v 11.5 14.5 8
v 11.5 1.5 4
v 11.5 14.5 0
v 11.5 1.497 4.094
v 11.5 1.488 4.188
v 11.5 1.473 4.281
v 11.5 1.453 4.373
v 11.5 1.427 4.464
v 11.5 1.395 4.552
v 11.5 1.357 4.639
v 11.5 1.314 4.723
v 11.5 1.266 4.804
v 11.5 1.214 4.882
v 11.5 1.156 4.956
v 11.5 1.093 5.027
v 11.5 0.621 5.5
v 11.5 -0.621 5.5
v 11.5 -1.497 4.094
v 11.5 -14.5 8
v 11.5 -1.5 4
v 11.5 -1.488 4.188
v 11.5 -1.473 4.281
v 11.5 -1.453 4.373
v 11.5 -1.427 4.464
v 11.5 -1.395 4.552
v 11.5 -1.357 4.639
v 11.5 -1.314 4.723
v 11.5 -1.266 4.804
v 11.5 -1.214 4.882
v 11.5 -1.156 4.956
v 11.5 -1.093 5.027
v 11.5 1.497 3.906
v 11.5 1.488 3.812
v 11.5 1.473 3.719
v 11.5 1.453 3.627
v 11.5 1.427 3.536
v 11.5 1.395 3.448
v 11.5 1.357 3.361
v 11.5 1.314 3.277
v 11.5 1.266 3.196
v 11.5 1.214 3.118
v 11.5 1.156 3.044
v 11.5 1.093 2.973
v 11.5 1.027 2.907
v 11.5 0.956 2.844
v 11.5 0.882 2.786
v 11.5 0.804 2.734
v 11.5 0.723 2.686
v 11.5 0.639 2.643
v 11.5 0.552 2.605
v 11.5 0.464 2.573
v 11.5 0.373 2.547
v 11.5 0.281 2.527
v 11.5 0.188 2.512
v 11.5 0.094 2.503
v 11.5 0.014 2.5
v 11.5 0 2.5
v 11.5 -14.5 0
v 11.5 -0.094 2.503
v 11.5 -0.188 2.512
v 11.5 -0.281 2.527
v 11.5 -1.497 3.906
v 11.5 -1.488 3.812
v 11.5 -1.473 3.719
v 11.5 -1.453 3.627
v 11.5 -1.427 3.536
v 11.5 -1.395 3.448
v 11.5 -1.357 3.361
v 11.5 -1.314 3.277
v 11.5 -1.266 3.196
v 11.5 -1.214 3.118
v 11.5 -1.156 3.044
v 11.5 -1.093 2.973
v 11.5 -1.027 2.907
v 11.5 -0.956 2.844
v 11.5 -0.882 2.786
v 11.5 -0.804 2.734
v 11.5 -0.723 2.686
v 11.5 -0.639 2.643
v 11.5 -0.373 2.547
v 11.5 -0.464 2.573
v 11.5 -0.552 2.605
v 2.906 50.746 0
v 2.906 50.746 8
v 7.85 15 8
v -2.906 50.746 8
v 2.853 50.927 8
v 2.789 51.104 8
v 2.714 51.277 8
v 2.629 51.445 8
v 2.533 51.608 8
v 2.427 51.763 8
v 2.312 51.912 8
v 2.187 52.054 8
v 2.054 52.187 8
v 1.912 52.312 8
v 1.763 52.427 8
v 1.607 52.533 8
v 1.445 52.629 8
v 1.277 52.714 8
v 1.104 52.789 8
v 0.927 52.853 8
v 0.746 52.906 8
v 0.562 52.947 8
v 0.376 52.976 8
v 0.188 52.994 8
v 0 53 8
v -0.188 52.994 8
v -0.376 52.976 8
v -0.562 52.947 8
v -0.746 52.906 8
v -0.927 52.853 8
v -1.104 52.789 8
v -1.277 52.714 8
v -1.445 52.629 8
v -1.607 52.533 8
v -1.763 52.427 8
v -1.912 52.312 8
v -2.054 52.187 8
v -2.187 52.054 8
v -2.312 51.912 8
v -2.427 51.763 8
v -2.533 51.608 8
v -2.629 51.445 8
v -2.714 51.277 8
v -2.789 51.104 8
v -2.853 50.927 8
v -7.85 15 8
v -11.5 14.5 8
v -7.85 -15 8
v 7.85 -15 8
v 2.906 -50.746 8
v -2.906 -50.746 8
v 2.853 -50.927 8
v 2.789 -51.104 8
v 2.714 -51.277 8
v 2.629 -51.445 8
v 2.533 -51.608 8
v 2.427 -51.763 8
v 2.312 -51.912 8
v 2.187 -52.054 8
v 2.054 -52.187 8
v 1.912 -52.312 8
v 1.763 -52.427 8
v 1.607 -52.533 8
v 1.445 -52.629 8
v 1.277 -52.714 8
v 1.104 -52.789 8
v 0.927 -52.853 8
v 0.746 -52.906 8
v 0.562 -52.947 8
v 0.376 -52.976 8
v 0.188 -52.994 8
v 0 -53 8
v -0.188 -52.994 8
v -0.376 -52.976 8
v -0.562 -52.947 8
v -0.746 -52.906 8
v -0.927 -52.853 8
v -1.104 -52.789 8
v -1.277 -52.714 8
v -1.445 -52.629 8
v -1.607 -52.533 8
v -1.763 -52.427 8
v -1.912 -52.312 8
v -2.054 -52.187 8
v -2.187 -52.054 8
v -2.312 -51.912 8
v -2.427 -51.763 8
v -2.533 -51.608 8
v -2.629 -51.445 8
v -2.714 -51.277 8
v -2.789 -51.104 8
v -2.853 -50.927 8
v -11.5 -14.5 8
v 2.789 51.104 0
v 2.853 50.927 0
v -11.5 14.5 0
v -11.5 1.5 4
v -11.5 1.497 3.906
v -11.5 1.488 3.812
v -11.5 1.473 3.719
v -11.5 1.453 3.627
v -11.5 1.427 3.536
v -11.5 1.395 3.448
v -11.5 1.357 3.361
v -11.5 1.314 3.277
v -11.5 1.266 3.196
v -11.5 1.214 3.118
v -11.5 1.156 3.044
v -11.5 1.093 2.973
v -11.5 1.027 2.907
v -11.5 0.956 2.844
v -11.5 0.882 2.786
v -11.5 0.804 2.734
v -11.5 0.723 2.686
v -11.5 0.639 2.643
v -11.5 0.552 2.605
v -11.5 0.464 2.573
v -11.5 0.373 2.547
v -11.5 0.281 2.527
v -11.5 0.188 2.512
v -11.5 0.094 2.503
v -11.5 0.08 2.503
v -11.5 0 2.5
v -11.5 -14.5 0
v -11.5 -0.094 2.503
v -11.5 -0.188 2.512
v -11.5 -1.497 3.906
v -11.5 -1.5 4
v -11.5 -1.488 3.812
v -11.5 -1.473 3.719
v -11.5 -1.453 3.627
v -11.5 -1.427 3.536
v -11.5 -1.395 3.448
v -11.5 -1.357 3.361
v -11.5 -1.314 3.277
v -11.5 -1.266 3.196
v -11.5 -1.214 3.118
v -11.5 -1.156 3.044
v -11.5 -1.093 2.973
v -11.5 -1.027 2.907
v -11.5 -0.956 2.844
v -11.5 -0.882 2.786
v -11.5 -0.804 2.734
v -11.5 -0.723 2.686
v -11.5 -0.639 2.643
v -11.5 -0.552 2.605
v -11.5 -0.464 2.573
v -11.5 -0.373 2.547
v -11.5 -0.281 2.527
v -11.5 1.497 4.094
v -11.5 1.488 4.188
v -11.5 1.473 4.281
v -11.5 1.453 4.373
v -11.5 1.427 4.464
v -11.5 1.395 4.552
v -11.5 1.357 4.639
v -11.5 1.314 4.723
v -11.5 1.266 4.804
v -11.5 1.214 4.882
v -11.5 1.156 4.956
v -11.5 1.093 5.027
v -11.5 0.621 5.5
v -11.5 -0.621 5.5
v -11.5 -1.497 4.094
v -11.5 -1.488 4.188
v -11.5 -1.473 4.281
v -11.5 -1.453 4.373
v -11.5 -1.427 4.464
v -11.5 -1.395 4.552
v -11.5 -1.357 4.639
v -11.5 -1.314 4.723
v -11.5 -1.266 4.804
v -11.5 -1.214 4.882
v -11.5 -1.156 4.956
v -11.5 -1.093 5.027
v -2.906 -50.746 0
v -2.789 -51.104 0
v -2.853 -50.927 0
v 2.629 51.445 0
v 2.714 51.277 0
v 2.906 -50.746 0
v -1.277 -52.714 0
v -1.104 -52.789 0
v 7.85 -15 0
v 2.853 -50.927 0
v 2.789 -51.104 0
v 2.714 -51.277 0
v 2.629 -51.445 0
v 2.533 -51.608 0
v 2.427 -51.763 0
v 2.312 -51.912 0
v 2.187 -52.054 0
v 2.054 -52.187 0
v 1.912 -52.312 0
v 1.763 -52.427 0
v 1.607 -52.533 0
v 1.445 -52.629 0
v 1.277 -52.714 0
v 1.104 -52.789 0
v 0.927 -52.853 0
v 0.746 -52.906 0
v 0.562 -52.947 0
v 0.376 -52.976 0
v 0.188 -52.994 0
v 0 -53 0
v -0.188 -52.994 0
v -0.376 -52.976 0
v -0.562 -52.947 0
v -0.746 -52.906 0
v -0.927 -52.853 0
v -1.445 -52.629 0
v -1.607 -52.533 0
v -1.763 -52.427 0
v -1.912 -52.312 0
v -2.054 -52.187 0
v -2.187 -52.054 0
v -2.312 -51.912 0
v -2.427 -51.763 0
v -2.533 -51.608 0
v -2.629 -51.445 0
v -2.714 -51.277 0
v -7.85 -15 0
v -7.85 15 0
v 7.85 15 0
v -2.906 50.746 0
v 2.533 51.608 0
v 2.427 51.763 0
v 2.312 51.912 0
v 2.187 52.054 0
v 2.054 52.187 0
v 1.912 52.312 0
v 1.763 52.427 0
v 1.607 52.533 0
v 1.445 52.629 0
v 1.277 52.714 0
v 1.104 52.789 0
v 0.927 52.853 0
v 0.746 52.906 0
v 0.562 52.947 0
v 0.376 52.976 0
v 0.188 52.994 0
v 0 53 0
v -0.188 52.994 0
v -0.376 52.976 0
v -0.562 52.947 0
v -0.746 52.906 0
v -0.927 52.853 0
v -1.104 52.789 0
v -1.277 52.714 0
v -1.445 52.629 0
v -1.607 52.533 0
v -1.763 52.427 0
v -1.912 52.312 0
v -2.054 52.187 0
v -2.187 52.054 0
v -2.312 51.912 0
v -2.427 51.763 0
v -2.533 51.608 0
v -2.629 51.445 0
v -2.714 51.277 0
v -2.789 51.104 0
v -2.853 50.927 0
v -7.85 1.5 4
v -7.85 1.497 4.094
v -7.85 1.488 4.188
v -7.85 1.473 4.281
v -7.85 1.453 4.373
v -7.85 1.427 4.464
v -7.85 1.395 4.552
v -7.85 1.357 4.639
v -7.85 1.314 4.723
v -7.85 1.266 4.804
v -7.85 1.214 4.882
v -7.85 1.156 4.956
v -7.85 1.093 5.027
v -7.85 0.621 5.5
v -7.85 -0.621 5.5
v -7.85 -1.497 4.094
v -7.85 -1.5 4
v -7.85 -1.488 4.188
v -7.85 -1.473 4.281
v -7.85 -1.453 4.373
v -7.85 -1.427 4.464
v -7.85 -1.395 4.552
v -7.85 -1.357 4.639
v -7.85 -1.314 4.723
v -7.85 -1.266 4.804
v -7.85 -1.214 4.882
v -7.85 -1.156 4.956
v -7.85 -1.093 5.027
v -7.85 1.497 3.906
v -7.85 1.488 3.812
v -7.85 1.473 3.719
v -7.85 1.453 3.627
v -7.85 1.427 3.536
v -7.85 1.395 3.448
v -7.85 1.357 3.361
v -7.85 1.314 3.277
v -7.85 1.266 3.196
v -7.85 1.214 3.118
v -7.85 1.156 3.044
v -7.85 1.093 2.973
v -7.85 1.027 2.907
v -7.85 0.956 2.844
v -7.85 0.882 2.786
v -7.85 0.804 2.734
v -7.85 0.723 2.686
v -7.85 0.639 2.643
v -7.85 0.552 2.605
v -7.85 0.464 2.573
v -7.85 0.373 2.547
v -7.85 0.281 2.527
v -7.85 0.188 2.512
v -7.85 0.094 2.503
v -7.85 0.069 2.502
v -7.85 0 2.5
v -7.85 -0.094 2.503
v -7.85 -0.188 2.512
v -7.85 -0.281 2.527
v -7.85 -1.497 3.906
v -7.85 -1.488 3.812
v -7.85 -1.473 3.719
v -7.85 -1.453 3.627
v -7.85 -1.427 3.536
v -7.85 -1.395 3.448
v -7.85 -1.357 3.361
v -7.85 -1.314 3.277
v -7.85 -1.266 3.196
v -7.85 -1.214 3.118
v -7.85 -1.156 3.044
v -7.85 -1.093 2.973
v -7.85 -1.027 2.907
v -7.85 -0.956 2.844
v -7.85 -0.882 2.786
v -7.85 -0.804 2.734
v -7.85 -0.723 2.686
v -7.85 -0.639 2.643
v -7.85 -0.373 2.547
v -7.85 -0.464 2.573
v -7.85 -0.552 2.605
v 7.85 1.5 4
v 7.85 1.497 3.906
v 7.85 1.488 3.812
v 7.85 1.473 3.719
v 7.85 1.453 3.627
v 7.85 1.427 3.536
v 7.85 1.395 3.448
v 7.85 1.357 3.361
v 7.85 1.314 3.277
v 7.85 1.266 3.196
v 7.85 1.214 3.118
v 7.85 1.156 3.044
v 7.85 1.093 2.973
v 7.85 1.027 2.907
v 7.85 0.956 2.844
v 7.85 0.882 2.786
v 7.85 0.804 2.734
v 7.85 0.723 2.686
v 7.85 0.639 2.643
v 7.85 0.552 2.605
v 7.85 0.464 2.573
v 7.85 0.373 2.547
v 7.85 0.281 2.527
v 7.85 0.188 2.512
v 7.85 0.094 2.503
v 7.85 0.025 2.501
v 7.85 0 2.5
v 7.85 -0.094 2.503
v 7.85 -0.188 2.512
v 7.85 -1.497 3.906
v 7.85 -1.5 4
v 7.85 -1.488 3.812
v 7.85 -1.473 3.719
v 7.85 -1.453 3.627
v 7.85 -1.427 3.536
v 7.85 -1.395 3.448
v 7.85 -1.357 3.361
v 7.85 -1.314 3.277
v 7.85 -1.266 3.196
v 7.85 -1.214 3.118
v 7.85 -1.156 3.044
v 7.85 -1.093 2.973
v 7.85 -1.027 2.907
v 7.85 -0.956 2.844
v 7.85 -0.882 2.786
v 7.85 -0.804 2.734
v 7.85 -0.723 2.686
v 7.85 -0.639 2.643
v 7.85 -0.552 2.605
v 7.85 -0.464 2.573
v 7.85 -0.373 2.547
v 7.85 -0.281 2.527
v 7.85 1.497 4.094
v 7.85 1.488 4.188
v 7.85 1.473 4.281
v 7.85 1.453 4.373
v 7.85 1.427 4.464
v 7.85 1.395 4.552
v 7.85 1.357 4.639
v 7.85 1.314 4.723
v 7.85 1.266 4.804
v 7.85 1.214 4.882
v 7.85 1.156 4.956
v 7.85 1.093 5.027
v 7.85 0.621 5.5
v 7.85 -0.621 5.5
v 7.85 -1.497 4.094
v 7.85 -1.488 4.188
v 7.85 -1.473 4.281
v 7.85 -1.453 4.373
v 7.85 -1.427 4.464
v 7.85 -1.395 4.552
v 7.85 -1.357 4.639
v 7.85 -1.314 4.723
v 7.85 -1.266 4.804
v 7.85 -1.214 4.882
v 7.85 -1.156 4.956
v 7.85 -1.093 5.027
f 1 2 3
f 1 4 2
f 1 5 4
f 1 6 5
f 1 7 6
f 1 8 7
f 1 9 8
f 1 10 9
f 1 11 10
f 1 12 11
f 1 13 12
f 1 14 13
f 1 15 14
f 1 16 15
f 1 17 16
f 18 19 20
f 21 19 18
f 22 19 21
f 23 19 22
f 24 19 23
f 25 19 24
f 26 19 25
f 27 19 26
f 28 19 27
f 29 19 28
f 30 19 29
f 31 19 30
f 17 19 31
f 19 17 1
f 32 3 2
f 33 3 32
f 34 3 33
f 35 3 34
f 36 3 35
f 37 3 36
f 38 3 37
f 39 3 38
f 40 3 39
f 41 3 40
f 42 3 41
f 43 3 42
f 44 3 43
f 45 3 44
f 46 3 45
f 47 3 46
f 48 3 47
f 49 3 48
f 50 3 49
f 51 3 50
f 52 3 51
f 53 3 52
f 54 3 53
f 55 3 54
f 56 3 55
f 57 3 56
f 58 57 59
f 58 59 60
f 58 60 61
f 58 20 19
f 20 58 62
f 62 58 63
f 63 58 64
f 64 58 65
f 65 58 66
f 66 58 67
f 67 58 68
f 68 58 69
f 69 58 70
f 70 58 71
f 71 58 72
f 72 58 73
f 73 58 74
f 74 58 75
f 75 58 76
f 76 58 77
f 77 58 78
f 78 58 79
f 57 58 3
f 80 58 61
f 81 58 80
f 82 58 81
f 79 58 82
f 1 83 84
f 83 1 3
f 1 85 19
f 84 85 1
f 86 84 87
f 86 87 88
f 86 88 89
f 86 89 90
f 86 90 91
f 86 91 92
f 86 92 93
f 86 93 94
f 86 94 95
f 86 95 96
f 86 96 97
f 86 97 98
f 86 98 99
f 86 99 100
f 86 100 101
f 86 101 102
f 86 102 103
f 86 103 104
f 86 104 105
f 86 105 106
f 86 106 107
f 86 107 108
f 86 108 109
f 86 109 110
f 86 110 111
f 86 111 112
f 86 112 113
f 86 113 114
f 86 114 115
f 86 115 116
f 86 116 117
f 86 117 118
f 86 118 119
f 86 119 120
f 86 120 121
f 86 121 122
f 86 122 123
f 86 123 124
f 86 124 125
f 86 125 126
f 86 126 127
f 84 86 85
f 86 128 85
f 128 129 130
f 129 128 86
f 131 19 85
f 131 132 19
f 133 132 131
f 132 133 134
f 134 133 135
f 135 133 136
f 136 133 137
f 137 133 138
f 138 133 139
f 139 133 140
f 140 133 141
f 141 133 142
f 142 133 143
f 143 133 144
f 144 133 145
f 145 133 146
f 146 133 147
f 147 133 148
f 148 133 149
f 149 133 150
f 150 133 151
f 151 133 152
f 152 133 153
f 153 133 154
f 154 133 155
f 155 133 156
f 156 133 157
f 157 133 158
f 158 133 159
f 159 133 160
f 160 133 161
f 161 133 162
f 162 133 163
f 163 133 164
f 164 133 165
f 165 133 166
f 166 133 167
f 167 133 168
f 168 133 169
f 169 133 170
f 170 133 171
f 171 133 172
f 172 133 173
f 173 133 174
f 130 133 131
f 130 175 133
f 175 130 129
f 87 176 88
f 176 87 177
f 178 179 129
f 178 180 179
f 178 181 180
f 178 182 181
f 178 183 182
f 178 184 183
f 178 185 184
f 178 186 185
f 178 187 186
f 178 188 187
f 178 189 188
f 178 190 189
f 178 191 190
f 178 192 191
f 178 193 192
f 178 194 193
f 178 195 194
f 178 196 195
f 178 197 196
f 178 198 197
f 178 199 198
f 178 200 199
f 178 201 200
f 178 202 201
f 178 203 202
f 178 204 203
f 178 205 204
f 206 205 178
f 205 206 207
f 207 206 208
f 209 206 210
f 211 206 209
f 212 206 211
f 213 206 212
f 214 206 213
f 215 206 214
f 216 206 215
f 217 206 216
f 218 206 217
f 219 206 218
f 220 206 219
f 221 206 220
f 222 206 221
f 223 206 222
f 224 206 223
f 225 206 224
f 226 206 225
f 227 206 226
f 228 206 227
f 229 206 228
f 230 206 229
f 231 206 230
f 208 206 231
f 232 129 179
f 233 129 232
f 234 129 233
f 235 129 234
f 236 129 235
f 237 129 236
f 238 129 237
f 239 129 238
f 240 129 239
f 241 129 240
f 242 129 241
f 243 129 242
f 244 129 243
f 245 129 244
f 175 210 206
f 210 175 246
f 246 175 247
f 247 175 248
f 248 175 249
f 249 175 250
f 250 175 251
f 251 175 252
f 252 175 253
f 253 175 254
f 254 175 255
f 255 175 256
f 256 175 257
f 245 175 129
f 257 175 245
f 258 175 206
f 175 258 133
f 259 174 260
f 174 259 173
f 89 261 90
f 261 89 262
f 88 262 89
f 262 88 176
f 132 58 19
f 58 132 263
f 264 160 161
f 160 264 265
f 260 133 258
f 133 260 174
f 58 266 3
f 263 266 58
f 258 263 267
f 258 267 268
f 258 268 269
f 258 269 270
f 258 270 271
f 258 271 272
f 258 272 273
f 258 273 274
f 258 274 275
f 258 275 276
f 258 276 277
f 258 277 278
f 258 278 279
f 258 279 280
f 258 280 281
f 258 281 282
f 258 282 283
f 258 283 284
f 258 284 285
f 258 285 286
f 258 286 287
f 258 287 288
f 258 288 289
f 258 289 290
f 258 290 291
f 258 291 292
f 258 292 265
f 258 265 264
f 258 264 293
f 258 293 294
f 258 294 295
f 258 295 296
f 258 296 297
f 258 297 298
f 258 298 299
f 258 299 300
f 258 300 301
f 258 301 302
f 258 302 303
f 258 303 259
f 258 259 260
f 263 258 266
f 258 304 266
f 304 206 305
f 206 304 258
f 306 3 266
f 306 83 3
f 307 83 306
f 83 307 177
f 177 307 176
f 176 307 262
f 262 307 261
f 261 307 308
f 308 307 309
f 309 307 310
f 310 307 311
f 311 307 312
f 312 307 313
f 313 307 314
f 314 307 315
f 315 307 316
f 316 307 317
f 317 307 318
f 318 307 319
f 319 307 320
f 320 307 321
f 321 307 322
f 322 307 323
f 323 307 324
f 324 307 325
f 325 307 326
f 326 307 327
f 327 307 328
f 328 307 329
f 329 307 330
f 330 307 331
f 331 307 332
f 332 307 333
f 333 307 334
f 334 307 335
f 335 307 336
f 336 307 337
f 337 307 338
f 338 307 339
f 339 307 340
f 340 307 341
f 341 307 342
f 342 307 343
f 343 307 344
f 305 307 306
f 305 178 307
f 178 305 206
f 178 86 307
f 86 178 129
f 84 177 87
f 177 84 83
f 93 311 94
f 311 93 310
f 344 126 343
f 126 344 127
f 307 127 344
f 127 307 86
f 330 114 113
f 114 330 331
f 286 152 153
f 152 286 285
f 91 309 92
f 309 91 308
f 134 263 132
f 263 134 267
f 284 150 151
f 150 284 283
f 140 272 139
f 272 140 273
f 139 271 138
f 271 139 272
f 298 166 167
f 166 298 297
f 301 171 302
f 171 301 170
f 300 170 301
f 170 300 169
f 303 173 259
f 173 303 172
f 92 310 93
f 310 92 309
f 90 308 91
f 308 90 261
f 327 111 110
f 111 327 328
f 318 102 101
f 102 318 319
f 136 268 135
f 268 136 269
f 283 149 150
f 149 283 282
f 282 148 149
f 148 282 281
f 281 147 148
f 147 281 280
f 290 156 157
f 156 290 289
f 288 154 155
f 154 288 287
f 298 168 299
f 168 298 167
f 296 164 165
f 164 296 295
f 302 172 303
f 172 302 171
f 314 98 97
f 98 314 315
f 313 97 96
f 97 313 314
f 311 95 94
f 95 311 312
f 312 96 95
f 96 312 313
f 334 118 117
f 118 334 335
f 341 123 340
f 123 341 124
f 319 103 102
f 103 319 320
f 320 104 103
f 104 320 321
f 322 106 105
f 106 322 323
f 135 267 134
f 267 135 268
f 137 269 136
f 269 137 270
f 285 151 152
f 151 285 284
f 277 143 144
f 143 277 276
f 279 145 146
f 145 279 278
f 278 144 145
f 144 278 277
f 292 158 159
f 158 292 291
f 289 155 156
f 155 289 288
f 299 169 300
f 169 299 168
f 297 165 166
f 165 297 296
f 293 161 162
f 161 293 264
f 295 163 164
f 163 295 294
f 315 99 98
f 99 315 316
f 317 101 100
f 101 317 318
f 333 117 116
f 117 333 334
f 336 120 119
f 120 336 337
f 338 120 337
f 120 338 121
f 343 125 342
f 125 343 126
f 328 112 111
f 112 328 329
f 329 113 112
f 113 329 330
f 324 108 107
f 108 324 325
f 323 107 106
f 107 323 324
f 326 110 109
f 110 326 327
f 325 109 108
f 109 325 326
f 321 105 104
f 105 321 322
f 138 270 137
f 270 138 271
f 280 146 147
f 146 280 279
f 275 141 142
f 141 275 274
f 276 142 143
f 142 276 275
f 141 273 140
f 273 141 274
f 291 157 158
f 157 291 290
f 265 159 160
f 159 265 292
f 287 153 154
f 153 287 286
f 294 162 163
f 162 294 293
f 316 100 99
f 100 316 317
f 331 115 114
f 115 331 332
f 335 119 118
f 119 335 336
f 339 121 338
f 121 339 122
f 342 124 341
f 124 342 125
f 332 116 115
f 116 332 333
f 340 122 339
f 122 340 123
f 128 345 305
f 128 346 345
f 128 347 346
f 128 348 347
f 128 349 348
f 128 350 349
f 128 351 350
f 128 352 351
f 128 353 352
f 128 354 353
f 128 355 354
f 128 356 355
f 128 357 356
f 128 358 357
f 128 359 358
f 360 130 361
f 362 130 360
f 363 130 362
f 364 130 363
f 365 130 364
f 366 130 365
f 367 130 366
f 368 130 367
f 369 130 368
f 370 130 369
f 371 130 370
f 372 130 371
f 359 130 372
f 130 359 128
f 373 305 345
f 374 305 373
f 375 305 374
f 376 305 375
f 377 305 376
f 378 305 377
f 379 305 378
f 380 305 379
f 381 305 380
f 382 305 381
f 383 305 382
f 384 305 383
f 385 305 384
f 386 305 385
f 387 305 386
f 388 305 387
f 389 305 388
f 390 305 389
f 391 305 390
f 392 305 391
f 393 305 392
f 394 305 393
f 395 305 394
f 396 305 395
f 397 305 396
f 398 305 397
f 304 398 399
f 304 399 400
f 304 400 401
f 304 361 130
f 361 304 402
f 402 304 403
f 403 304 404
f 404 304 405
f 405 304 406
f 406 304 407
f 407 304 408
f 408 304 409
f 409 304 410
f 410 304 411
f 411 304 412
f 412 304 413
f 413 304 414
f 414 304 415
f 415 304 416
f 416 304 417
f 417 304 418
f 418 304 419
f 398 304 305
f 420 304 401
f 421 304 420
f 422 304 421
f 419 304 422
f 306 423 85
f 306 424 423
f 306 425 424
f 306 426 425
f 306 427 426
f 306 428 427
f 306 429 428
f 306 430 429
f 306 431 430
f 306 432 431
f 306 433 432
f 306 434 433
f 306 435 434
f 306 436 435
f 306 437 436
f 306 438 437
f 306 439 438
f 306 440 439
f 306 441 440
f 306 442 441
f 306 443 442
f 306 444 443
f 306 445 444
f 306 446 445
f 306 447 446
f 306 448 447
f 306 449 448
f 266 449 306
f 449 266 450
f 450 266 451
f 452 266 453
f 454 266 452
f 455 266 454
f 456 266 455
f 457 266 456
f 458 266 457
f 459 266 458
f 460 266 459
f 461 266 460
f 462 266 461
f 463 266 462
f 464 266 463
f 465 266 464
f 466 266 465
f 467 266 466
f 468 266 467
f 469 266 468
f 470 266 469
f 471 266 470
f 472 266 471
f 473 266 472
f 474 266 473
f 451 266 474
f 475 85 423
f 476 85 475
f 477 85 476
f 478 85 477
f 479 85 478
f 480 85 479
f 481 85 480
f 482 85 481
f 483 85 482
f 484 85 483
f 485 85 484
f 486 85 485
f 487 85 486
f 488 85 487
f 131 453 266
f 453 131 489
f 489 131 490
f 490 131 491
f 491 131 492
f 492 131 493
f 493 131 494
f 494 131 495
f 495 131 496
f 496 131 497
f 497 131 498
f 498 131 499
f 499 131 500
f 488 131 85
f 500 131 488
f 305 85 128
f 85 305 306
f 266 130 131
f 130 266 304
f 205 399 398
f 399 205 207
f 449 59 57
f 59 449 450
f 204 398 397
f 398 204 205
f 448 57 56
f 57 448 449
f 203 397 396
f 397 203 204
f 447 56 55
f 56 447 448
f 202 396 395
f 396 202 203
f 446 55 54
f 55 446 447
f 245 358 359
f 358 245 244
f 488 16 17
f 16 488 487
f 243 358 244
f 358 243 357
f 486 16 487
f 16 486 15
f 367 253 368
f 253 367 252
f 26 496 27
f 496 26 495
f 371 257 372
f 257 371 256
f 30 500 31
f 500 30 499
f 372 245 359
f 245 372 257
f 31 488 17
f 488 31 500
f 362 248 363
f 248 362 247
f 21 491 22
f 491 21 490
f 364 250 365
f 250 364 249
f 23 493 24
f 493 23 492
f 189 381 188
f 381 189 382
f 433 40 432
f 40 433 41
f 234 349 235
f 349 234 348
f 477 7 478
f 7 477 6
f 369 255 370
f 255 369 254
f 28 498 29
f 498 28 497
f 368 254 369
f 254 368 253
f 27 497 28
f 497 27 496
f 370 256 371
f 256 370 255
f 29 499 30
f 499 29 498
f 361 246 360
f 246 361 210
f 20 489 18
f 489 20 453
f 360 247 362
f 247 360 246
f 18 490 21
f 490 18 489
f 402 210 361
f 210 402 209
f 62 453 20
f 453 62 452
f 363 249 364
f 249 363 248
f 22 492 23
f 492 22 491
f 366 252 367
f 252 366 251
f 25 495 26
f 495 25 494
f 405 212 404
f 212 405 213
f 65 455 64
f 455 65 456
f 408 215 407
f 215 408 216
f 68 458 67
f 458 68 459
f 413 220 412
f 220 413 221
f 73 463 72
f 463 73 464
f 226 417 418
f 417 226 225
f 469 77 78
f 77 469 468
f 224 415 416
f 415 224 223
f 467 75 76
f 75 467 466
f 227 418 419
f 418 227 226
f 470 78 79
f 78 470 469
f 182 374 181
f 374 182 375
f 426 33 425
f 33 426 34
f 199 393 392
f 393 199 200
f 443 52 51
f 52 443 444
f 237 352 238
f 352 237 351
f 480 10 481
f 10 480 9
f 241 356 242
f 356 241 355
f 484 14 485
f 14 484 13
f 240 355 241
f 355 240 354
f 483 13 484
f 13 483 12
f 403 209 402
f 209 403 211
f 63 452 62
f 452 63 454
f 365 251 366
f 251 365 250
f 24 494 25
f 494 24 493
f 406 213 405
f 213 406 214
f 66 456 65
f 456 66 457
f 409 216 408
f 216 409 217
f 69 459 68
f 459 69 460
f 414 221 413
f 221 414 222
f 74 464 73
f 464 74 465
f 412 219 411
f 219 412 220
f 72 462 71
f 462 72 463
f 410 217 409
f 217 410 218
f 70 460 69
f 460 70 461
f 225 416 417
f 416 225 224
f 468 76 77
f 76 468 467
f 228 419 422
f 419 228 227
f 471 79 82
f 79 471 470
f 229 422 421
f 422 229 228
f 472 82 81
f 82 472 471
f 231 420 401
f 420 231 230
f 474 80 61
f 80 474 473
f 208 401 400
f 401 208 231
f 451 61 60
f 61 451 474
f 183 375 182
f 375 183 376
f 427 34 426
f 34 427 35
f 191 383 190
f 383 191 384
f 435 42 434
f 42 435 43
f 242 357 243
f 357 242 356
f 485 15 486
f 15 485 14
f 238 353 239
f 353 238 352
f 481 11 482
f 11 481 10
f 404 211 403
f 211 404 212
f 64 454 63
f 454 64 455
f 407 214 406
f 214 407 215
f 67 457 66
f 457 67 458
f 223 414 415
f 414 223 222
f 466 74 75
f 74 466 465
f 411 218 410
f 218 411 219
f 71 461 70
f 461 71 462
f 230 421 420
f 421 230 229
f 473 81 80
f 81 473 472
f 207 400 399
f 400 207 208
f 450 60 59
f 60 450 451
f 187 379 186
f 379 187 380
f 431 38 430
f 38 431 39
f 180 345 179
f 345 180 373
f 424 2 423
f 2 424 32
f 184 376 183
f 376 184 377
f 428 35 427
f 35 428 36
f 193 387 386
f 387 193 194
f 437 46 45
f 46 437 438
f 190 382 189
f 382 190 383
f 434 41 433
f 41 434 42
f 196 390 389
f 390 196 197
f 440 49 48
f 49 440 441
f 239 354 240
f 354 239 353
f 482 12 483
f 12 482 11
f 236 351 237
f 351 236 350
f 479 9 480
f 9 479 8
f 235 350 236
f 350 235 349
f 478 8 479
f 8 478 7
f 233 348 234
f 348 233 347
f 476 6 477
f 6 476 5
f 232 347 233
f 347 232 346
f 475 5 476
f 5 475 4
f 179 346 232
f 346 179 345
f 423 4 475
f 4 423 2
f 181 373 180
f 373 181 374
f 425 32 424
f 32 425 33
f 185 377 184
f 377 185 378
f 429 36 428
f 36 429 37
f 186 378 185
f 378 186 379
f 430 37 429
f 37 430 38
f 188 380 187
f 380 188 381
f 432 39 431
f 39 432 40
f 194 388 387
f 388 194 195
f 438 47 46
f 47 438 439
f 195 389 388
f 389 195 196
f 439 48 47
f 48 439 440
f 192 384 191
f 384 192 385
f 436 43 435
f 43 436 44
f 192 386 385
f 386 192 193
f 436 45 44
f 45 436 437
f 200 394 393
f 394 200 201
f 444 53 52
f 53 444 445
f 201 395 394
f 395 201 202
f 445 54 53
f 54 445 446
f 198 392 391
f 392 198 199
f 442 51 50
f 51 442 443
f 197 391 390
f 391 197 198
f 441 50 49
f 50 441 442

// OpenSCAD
// file: ../utils/teardrops.scad
//
// Mendel90
//
// GNU GPL v2
// nop.head@gmail.com
// hydraraptor.blogspot.com
//
// For making horizontal holes that don't need support material
// Small holes can get away without it but they print better with truncated teardrops
//
module teardrop_2D(r) {
    hull() {
        circle(r = r, center = true);
        translate([0, r/2])
            square([2*r*(2*cos(45)-1), r], center = true);
    }
}

module teardrop(h, r, center)
    render(convexity = 5) linear_extrude(height = h, convexity = 2, center = center)
        teardrop_2D(r);

module teardrop_plus(h, r, center)
    teardrop(h, r + layer_height / 4, center);


module tearslot(h, r, w, center)
    linear_extrude(height = h, convexity = 6, center = center)
        hull() {
            translate([-w/2,0,0]) teardrop_2D(r);
            translate([ w/2,0,0]) teardrop_2D(r);
        }

module vertical_tearslot(h, r, l, center = true)
    linear_extrude(height = h, convexity = 6, center = center)
        hull() {
            translate([0, l / 2]) teardrop_2D(r);
            translate([0, -l / 2, 0])
                circle(r = r, center = true);
        }
// main file
//    This is a sword`s cross guard
//    Copyright (C) 2016  Christian Ege
//
//    This program is free software: you can redistribute it and/or modify
//    it under the terms of the GNU Affero General Public License as
//    published by the Free Software Foundation, either version 3 of the
//    License, or (at your option) any later version.
//
//    This program is distributed in the hope that it will be useful,
//    but WITHOUT ANY WARRANTY; without even the implied warranty of
//    MERCHANTABILITY or FITNESS FOR A PARTICULAR PURPOSE.  See the
//    GNU Affero General Public License for more details.
//
//    You should have received a copy of the GNU Affero General Public License
//    along with this program.  If not, see <http://www.gnu.org/licenses/>.

include <../utils/teardrops.scad>

inner_cube_x=15+8;
inner_cube_y=29;
height=8;

cut_out_x=15.2+0.5;
cut_out_y=29.5+0.5;

difference() {
    hull() {
        translate([0,50,0])cylinder(r=3,h=height,$fn=100);
        translate([0,-50,0])cylinder(r=3,h=height,$fn=100);
        translate([-inner_cube_x/2,-inner_cube_y/2,0])cube([inner_cube_x,inner_cube_y,height]);
    }
    translate([-cut_out_x/2,-cut_out_y/2,-0.5])cube([cut_out_x,cut_out_y,height+1]);
    translate([-(inner_cube_x+10)/2,0,height/2])rotate([90,0,90])#teardrop(h=inner_cube_x+10,r=3/2,$fn=100);
}
